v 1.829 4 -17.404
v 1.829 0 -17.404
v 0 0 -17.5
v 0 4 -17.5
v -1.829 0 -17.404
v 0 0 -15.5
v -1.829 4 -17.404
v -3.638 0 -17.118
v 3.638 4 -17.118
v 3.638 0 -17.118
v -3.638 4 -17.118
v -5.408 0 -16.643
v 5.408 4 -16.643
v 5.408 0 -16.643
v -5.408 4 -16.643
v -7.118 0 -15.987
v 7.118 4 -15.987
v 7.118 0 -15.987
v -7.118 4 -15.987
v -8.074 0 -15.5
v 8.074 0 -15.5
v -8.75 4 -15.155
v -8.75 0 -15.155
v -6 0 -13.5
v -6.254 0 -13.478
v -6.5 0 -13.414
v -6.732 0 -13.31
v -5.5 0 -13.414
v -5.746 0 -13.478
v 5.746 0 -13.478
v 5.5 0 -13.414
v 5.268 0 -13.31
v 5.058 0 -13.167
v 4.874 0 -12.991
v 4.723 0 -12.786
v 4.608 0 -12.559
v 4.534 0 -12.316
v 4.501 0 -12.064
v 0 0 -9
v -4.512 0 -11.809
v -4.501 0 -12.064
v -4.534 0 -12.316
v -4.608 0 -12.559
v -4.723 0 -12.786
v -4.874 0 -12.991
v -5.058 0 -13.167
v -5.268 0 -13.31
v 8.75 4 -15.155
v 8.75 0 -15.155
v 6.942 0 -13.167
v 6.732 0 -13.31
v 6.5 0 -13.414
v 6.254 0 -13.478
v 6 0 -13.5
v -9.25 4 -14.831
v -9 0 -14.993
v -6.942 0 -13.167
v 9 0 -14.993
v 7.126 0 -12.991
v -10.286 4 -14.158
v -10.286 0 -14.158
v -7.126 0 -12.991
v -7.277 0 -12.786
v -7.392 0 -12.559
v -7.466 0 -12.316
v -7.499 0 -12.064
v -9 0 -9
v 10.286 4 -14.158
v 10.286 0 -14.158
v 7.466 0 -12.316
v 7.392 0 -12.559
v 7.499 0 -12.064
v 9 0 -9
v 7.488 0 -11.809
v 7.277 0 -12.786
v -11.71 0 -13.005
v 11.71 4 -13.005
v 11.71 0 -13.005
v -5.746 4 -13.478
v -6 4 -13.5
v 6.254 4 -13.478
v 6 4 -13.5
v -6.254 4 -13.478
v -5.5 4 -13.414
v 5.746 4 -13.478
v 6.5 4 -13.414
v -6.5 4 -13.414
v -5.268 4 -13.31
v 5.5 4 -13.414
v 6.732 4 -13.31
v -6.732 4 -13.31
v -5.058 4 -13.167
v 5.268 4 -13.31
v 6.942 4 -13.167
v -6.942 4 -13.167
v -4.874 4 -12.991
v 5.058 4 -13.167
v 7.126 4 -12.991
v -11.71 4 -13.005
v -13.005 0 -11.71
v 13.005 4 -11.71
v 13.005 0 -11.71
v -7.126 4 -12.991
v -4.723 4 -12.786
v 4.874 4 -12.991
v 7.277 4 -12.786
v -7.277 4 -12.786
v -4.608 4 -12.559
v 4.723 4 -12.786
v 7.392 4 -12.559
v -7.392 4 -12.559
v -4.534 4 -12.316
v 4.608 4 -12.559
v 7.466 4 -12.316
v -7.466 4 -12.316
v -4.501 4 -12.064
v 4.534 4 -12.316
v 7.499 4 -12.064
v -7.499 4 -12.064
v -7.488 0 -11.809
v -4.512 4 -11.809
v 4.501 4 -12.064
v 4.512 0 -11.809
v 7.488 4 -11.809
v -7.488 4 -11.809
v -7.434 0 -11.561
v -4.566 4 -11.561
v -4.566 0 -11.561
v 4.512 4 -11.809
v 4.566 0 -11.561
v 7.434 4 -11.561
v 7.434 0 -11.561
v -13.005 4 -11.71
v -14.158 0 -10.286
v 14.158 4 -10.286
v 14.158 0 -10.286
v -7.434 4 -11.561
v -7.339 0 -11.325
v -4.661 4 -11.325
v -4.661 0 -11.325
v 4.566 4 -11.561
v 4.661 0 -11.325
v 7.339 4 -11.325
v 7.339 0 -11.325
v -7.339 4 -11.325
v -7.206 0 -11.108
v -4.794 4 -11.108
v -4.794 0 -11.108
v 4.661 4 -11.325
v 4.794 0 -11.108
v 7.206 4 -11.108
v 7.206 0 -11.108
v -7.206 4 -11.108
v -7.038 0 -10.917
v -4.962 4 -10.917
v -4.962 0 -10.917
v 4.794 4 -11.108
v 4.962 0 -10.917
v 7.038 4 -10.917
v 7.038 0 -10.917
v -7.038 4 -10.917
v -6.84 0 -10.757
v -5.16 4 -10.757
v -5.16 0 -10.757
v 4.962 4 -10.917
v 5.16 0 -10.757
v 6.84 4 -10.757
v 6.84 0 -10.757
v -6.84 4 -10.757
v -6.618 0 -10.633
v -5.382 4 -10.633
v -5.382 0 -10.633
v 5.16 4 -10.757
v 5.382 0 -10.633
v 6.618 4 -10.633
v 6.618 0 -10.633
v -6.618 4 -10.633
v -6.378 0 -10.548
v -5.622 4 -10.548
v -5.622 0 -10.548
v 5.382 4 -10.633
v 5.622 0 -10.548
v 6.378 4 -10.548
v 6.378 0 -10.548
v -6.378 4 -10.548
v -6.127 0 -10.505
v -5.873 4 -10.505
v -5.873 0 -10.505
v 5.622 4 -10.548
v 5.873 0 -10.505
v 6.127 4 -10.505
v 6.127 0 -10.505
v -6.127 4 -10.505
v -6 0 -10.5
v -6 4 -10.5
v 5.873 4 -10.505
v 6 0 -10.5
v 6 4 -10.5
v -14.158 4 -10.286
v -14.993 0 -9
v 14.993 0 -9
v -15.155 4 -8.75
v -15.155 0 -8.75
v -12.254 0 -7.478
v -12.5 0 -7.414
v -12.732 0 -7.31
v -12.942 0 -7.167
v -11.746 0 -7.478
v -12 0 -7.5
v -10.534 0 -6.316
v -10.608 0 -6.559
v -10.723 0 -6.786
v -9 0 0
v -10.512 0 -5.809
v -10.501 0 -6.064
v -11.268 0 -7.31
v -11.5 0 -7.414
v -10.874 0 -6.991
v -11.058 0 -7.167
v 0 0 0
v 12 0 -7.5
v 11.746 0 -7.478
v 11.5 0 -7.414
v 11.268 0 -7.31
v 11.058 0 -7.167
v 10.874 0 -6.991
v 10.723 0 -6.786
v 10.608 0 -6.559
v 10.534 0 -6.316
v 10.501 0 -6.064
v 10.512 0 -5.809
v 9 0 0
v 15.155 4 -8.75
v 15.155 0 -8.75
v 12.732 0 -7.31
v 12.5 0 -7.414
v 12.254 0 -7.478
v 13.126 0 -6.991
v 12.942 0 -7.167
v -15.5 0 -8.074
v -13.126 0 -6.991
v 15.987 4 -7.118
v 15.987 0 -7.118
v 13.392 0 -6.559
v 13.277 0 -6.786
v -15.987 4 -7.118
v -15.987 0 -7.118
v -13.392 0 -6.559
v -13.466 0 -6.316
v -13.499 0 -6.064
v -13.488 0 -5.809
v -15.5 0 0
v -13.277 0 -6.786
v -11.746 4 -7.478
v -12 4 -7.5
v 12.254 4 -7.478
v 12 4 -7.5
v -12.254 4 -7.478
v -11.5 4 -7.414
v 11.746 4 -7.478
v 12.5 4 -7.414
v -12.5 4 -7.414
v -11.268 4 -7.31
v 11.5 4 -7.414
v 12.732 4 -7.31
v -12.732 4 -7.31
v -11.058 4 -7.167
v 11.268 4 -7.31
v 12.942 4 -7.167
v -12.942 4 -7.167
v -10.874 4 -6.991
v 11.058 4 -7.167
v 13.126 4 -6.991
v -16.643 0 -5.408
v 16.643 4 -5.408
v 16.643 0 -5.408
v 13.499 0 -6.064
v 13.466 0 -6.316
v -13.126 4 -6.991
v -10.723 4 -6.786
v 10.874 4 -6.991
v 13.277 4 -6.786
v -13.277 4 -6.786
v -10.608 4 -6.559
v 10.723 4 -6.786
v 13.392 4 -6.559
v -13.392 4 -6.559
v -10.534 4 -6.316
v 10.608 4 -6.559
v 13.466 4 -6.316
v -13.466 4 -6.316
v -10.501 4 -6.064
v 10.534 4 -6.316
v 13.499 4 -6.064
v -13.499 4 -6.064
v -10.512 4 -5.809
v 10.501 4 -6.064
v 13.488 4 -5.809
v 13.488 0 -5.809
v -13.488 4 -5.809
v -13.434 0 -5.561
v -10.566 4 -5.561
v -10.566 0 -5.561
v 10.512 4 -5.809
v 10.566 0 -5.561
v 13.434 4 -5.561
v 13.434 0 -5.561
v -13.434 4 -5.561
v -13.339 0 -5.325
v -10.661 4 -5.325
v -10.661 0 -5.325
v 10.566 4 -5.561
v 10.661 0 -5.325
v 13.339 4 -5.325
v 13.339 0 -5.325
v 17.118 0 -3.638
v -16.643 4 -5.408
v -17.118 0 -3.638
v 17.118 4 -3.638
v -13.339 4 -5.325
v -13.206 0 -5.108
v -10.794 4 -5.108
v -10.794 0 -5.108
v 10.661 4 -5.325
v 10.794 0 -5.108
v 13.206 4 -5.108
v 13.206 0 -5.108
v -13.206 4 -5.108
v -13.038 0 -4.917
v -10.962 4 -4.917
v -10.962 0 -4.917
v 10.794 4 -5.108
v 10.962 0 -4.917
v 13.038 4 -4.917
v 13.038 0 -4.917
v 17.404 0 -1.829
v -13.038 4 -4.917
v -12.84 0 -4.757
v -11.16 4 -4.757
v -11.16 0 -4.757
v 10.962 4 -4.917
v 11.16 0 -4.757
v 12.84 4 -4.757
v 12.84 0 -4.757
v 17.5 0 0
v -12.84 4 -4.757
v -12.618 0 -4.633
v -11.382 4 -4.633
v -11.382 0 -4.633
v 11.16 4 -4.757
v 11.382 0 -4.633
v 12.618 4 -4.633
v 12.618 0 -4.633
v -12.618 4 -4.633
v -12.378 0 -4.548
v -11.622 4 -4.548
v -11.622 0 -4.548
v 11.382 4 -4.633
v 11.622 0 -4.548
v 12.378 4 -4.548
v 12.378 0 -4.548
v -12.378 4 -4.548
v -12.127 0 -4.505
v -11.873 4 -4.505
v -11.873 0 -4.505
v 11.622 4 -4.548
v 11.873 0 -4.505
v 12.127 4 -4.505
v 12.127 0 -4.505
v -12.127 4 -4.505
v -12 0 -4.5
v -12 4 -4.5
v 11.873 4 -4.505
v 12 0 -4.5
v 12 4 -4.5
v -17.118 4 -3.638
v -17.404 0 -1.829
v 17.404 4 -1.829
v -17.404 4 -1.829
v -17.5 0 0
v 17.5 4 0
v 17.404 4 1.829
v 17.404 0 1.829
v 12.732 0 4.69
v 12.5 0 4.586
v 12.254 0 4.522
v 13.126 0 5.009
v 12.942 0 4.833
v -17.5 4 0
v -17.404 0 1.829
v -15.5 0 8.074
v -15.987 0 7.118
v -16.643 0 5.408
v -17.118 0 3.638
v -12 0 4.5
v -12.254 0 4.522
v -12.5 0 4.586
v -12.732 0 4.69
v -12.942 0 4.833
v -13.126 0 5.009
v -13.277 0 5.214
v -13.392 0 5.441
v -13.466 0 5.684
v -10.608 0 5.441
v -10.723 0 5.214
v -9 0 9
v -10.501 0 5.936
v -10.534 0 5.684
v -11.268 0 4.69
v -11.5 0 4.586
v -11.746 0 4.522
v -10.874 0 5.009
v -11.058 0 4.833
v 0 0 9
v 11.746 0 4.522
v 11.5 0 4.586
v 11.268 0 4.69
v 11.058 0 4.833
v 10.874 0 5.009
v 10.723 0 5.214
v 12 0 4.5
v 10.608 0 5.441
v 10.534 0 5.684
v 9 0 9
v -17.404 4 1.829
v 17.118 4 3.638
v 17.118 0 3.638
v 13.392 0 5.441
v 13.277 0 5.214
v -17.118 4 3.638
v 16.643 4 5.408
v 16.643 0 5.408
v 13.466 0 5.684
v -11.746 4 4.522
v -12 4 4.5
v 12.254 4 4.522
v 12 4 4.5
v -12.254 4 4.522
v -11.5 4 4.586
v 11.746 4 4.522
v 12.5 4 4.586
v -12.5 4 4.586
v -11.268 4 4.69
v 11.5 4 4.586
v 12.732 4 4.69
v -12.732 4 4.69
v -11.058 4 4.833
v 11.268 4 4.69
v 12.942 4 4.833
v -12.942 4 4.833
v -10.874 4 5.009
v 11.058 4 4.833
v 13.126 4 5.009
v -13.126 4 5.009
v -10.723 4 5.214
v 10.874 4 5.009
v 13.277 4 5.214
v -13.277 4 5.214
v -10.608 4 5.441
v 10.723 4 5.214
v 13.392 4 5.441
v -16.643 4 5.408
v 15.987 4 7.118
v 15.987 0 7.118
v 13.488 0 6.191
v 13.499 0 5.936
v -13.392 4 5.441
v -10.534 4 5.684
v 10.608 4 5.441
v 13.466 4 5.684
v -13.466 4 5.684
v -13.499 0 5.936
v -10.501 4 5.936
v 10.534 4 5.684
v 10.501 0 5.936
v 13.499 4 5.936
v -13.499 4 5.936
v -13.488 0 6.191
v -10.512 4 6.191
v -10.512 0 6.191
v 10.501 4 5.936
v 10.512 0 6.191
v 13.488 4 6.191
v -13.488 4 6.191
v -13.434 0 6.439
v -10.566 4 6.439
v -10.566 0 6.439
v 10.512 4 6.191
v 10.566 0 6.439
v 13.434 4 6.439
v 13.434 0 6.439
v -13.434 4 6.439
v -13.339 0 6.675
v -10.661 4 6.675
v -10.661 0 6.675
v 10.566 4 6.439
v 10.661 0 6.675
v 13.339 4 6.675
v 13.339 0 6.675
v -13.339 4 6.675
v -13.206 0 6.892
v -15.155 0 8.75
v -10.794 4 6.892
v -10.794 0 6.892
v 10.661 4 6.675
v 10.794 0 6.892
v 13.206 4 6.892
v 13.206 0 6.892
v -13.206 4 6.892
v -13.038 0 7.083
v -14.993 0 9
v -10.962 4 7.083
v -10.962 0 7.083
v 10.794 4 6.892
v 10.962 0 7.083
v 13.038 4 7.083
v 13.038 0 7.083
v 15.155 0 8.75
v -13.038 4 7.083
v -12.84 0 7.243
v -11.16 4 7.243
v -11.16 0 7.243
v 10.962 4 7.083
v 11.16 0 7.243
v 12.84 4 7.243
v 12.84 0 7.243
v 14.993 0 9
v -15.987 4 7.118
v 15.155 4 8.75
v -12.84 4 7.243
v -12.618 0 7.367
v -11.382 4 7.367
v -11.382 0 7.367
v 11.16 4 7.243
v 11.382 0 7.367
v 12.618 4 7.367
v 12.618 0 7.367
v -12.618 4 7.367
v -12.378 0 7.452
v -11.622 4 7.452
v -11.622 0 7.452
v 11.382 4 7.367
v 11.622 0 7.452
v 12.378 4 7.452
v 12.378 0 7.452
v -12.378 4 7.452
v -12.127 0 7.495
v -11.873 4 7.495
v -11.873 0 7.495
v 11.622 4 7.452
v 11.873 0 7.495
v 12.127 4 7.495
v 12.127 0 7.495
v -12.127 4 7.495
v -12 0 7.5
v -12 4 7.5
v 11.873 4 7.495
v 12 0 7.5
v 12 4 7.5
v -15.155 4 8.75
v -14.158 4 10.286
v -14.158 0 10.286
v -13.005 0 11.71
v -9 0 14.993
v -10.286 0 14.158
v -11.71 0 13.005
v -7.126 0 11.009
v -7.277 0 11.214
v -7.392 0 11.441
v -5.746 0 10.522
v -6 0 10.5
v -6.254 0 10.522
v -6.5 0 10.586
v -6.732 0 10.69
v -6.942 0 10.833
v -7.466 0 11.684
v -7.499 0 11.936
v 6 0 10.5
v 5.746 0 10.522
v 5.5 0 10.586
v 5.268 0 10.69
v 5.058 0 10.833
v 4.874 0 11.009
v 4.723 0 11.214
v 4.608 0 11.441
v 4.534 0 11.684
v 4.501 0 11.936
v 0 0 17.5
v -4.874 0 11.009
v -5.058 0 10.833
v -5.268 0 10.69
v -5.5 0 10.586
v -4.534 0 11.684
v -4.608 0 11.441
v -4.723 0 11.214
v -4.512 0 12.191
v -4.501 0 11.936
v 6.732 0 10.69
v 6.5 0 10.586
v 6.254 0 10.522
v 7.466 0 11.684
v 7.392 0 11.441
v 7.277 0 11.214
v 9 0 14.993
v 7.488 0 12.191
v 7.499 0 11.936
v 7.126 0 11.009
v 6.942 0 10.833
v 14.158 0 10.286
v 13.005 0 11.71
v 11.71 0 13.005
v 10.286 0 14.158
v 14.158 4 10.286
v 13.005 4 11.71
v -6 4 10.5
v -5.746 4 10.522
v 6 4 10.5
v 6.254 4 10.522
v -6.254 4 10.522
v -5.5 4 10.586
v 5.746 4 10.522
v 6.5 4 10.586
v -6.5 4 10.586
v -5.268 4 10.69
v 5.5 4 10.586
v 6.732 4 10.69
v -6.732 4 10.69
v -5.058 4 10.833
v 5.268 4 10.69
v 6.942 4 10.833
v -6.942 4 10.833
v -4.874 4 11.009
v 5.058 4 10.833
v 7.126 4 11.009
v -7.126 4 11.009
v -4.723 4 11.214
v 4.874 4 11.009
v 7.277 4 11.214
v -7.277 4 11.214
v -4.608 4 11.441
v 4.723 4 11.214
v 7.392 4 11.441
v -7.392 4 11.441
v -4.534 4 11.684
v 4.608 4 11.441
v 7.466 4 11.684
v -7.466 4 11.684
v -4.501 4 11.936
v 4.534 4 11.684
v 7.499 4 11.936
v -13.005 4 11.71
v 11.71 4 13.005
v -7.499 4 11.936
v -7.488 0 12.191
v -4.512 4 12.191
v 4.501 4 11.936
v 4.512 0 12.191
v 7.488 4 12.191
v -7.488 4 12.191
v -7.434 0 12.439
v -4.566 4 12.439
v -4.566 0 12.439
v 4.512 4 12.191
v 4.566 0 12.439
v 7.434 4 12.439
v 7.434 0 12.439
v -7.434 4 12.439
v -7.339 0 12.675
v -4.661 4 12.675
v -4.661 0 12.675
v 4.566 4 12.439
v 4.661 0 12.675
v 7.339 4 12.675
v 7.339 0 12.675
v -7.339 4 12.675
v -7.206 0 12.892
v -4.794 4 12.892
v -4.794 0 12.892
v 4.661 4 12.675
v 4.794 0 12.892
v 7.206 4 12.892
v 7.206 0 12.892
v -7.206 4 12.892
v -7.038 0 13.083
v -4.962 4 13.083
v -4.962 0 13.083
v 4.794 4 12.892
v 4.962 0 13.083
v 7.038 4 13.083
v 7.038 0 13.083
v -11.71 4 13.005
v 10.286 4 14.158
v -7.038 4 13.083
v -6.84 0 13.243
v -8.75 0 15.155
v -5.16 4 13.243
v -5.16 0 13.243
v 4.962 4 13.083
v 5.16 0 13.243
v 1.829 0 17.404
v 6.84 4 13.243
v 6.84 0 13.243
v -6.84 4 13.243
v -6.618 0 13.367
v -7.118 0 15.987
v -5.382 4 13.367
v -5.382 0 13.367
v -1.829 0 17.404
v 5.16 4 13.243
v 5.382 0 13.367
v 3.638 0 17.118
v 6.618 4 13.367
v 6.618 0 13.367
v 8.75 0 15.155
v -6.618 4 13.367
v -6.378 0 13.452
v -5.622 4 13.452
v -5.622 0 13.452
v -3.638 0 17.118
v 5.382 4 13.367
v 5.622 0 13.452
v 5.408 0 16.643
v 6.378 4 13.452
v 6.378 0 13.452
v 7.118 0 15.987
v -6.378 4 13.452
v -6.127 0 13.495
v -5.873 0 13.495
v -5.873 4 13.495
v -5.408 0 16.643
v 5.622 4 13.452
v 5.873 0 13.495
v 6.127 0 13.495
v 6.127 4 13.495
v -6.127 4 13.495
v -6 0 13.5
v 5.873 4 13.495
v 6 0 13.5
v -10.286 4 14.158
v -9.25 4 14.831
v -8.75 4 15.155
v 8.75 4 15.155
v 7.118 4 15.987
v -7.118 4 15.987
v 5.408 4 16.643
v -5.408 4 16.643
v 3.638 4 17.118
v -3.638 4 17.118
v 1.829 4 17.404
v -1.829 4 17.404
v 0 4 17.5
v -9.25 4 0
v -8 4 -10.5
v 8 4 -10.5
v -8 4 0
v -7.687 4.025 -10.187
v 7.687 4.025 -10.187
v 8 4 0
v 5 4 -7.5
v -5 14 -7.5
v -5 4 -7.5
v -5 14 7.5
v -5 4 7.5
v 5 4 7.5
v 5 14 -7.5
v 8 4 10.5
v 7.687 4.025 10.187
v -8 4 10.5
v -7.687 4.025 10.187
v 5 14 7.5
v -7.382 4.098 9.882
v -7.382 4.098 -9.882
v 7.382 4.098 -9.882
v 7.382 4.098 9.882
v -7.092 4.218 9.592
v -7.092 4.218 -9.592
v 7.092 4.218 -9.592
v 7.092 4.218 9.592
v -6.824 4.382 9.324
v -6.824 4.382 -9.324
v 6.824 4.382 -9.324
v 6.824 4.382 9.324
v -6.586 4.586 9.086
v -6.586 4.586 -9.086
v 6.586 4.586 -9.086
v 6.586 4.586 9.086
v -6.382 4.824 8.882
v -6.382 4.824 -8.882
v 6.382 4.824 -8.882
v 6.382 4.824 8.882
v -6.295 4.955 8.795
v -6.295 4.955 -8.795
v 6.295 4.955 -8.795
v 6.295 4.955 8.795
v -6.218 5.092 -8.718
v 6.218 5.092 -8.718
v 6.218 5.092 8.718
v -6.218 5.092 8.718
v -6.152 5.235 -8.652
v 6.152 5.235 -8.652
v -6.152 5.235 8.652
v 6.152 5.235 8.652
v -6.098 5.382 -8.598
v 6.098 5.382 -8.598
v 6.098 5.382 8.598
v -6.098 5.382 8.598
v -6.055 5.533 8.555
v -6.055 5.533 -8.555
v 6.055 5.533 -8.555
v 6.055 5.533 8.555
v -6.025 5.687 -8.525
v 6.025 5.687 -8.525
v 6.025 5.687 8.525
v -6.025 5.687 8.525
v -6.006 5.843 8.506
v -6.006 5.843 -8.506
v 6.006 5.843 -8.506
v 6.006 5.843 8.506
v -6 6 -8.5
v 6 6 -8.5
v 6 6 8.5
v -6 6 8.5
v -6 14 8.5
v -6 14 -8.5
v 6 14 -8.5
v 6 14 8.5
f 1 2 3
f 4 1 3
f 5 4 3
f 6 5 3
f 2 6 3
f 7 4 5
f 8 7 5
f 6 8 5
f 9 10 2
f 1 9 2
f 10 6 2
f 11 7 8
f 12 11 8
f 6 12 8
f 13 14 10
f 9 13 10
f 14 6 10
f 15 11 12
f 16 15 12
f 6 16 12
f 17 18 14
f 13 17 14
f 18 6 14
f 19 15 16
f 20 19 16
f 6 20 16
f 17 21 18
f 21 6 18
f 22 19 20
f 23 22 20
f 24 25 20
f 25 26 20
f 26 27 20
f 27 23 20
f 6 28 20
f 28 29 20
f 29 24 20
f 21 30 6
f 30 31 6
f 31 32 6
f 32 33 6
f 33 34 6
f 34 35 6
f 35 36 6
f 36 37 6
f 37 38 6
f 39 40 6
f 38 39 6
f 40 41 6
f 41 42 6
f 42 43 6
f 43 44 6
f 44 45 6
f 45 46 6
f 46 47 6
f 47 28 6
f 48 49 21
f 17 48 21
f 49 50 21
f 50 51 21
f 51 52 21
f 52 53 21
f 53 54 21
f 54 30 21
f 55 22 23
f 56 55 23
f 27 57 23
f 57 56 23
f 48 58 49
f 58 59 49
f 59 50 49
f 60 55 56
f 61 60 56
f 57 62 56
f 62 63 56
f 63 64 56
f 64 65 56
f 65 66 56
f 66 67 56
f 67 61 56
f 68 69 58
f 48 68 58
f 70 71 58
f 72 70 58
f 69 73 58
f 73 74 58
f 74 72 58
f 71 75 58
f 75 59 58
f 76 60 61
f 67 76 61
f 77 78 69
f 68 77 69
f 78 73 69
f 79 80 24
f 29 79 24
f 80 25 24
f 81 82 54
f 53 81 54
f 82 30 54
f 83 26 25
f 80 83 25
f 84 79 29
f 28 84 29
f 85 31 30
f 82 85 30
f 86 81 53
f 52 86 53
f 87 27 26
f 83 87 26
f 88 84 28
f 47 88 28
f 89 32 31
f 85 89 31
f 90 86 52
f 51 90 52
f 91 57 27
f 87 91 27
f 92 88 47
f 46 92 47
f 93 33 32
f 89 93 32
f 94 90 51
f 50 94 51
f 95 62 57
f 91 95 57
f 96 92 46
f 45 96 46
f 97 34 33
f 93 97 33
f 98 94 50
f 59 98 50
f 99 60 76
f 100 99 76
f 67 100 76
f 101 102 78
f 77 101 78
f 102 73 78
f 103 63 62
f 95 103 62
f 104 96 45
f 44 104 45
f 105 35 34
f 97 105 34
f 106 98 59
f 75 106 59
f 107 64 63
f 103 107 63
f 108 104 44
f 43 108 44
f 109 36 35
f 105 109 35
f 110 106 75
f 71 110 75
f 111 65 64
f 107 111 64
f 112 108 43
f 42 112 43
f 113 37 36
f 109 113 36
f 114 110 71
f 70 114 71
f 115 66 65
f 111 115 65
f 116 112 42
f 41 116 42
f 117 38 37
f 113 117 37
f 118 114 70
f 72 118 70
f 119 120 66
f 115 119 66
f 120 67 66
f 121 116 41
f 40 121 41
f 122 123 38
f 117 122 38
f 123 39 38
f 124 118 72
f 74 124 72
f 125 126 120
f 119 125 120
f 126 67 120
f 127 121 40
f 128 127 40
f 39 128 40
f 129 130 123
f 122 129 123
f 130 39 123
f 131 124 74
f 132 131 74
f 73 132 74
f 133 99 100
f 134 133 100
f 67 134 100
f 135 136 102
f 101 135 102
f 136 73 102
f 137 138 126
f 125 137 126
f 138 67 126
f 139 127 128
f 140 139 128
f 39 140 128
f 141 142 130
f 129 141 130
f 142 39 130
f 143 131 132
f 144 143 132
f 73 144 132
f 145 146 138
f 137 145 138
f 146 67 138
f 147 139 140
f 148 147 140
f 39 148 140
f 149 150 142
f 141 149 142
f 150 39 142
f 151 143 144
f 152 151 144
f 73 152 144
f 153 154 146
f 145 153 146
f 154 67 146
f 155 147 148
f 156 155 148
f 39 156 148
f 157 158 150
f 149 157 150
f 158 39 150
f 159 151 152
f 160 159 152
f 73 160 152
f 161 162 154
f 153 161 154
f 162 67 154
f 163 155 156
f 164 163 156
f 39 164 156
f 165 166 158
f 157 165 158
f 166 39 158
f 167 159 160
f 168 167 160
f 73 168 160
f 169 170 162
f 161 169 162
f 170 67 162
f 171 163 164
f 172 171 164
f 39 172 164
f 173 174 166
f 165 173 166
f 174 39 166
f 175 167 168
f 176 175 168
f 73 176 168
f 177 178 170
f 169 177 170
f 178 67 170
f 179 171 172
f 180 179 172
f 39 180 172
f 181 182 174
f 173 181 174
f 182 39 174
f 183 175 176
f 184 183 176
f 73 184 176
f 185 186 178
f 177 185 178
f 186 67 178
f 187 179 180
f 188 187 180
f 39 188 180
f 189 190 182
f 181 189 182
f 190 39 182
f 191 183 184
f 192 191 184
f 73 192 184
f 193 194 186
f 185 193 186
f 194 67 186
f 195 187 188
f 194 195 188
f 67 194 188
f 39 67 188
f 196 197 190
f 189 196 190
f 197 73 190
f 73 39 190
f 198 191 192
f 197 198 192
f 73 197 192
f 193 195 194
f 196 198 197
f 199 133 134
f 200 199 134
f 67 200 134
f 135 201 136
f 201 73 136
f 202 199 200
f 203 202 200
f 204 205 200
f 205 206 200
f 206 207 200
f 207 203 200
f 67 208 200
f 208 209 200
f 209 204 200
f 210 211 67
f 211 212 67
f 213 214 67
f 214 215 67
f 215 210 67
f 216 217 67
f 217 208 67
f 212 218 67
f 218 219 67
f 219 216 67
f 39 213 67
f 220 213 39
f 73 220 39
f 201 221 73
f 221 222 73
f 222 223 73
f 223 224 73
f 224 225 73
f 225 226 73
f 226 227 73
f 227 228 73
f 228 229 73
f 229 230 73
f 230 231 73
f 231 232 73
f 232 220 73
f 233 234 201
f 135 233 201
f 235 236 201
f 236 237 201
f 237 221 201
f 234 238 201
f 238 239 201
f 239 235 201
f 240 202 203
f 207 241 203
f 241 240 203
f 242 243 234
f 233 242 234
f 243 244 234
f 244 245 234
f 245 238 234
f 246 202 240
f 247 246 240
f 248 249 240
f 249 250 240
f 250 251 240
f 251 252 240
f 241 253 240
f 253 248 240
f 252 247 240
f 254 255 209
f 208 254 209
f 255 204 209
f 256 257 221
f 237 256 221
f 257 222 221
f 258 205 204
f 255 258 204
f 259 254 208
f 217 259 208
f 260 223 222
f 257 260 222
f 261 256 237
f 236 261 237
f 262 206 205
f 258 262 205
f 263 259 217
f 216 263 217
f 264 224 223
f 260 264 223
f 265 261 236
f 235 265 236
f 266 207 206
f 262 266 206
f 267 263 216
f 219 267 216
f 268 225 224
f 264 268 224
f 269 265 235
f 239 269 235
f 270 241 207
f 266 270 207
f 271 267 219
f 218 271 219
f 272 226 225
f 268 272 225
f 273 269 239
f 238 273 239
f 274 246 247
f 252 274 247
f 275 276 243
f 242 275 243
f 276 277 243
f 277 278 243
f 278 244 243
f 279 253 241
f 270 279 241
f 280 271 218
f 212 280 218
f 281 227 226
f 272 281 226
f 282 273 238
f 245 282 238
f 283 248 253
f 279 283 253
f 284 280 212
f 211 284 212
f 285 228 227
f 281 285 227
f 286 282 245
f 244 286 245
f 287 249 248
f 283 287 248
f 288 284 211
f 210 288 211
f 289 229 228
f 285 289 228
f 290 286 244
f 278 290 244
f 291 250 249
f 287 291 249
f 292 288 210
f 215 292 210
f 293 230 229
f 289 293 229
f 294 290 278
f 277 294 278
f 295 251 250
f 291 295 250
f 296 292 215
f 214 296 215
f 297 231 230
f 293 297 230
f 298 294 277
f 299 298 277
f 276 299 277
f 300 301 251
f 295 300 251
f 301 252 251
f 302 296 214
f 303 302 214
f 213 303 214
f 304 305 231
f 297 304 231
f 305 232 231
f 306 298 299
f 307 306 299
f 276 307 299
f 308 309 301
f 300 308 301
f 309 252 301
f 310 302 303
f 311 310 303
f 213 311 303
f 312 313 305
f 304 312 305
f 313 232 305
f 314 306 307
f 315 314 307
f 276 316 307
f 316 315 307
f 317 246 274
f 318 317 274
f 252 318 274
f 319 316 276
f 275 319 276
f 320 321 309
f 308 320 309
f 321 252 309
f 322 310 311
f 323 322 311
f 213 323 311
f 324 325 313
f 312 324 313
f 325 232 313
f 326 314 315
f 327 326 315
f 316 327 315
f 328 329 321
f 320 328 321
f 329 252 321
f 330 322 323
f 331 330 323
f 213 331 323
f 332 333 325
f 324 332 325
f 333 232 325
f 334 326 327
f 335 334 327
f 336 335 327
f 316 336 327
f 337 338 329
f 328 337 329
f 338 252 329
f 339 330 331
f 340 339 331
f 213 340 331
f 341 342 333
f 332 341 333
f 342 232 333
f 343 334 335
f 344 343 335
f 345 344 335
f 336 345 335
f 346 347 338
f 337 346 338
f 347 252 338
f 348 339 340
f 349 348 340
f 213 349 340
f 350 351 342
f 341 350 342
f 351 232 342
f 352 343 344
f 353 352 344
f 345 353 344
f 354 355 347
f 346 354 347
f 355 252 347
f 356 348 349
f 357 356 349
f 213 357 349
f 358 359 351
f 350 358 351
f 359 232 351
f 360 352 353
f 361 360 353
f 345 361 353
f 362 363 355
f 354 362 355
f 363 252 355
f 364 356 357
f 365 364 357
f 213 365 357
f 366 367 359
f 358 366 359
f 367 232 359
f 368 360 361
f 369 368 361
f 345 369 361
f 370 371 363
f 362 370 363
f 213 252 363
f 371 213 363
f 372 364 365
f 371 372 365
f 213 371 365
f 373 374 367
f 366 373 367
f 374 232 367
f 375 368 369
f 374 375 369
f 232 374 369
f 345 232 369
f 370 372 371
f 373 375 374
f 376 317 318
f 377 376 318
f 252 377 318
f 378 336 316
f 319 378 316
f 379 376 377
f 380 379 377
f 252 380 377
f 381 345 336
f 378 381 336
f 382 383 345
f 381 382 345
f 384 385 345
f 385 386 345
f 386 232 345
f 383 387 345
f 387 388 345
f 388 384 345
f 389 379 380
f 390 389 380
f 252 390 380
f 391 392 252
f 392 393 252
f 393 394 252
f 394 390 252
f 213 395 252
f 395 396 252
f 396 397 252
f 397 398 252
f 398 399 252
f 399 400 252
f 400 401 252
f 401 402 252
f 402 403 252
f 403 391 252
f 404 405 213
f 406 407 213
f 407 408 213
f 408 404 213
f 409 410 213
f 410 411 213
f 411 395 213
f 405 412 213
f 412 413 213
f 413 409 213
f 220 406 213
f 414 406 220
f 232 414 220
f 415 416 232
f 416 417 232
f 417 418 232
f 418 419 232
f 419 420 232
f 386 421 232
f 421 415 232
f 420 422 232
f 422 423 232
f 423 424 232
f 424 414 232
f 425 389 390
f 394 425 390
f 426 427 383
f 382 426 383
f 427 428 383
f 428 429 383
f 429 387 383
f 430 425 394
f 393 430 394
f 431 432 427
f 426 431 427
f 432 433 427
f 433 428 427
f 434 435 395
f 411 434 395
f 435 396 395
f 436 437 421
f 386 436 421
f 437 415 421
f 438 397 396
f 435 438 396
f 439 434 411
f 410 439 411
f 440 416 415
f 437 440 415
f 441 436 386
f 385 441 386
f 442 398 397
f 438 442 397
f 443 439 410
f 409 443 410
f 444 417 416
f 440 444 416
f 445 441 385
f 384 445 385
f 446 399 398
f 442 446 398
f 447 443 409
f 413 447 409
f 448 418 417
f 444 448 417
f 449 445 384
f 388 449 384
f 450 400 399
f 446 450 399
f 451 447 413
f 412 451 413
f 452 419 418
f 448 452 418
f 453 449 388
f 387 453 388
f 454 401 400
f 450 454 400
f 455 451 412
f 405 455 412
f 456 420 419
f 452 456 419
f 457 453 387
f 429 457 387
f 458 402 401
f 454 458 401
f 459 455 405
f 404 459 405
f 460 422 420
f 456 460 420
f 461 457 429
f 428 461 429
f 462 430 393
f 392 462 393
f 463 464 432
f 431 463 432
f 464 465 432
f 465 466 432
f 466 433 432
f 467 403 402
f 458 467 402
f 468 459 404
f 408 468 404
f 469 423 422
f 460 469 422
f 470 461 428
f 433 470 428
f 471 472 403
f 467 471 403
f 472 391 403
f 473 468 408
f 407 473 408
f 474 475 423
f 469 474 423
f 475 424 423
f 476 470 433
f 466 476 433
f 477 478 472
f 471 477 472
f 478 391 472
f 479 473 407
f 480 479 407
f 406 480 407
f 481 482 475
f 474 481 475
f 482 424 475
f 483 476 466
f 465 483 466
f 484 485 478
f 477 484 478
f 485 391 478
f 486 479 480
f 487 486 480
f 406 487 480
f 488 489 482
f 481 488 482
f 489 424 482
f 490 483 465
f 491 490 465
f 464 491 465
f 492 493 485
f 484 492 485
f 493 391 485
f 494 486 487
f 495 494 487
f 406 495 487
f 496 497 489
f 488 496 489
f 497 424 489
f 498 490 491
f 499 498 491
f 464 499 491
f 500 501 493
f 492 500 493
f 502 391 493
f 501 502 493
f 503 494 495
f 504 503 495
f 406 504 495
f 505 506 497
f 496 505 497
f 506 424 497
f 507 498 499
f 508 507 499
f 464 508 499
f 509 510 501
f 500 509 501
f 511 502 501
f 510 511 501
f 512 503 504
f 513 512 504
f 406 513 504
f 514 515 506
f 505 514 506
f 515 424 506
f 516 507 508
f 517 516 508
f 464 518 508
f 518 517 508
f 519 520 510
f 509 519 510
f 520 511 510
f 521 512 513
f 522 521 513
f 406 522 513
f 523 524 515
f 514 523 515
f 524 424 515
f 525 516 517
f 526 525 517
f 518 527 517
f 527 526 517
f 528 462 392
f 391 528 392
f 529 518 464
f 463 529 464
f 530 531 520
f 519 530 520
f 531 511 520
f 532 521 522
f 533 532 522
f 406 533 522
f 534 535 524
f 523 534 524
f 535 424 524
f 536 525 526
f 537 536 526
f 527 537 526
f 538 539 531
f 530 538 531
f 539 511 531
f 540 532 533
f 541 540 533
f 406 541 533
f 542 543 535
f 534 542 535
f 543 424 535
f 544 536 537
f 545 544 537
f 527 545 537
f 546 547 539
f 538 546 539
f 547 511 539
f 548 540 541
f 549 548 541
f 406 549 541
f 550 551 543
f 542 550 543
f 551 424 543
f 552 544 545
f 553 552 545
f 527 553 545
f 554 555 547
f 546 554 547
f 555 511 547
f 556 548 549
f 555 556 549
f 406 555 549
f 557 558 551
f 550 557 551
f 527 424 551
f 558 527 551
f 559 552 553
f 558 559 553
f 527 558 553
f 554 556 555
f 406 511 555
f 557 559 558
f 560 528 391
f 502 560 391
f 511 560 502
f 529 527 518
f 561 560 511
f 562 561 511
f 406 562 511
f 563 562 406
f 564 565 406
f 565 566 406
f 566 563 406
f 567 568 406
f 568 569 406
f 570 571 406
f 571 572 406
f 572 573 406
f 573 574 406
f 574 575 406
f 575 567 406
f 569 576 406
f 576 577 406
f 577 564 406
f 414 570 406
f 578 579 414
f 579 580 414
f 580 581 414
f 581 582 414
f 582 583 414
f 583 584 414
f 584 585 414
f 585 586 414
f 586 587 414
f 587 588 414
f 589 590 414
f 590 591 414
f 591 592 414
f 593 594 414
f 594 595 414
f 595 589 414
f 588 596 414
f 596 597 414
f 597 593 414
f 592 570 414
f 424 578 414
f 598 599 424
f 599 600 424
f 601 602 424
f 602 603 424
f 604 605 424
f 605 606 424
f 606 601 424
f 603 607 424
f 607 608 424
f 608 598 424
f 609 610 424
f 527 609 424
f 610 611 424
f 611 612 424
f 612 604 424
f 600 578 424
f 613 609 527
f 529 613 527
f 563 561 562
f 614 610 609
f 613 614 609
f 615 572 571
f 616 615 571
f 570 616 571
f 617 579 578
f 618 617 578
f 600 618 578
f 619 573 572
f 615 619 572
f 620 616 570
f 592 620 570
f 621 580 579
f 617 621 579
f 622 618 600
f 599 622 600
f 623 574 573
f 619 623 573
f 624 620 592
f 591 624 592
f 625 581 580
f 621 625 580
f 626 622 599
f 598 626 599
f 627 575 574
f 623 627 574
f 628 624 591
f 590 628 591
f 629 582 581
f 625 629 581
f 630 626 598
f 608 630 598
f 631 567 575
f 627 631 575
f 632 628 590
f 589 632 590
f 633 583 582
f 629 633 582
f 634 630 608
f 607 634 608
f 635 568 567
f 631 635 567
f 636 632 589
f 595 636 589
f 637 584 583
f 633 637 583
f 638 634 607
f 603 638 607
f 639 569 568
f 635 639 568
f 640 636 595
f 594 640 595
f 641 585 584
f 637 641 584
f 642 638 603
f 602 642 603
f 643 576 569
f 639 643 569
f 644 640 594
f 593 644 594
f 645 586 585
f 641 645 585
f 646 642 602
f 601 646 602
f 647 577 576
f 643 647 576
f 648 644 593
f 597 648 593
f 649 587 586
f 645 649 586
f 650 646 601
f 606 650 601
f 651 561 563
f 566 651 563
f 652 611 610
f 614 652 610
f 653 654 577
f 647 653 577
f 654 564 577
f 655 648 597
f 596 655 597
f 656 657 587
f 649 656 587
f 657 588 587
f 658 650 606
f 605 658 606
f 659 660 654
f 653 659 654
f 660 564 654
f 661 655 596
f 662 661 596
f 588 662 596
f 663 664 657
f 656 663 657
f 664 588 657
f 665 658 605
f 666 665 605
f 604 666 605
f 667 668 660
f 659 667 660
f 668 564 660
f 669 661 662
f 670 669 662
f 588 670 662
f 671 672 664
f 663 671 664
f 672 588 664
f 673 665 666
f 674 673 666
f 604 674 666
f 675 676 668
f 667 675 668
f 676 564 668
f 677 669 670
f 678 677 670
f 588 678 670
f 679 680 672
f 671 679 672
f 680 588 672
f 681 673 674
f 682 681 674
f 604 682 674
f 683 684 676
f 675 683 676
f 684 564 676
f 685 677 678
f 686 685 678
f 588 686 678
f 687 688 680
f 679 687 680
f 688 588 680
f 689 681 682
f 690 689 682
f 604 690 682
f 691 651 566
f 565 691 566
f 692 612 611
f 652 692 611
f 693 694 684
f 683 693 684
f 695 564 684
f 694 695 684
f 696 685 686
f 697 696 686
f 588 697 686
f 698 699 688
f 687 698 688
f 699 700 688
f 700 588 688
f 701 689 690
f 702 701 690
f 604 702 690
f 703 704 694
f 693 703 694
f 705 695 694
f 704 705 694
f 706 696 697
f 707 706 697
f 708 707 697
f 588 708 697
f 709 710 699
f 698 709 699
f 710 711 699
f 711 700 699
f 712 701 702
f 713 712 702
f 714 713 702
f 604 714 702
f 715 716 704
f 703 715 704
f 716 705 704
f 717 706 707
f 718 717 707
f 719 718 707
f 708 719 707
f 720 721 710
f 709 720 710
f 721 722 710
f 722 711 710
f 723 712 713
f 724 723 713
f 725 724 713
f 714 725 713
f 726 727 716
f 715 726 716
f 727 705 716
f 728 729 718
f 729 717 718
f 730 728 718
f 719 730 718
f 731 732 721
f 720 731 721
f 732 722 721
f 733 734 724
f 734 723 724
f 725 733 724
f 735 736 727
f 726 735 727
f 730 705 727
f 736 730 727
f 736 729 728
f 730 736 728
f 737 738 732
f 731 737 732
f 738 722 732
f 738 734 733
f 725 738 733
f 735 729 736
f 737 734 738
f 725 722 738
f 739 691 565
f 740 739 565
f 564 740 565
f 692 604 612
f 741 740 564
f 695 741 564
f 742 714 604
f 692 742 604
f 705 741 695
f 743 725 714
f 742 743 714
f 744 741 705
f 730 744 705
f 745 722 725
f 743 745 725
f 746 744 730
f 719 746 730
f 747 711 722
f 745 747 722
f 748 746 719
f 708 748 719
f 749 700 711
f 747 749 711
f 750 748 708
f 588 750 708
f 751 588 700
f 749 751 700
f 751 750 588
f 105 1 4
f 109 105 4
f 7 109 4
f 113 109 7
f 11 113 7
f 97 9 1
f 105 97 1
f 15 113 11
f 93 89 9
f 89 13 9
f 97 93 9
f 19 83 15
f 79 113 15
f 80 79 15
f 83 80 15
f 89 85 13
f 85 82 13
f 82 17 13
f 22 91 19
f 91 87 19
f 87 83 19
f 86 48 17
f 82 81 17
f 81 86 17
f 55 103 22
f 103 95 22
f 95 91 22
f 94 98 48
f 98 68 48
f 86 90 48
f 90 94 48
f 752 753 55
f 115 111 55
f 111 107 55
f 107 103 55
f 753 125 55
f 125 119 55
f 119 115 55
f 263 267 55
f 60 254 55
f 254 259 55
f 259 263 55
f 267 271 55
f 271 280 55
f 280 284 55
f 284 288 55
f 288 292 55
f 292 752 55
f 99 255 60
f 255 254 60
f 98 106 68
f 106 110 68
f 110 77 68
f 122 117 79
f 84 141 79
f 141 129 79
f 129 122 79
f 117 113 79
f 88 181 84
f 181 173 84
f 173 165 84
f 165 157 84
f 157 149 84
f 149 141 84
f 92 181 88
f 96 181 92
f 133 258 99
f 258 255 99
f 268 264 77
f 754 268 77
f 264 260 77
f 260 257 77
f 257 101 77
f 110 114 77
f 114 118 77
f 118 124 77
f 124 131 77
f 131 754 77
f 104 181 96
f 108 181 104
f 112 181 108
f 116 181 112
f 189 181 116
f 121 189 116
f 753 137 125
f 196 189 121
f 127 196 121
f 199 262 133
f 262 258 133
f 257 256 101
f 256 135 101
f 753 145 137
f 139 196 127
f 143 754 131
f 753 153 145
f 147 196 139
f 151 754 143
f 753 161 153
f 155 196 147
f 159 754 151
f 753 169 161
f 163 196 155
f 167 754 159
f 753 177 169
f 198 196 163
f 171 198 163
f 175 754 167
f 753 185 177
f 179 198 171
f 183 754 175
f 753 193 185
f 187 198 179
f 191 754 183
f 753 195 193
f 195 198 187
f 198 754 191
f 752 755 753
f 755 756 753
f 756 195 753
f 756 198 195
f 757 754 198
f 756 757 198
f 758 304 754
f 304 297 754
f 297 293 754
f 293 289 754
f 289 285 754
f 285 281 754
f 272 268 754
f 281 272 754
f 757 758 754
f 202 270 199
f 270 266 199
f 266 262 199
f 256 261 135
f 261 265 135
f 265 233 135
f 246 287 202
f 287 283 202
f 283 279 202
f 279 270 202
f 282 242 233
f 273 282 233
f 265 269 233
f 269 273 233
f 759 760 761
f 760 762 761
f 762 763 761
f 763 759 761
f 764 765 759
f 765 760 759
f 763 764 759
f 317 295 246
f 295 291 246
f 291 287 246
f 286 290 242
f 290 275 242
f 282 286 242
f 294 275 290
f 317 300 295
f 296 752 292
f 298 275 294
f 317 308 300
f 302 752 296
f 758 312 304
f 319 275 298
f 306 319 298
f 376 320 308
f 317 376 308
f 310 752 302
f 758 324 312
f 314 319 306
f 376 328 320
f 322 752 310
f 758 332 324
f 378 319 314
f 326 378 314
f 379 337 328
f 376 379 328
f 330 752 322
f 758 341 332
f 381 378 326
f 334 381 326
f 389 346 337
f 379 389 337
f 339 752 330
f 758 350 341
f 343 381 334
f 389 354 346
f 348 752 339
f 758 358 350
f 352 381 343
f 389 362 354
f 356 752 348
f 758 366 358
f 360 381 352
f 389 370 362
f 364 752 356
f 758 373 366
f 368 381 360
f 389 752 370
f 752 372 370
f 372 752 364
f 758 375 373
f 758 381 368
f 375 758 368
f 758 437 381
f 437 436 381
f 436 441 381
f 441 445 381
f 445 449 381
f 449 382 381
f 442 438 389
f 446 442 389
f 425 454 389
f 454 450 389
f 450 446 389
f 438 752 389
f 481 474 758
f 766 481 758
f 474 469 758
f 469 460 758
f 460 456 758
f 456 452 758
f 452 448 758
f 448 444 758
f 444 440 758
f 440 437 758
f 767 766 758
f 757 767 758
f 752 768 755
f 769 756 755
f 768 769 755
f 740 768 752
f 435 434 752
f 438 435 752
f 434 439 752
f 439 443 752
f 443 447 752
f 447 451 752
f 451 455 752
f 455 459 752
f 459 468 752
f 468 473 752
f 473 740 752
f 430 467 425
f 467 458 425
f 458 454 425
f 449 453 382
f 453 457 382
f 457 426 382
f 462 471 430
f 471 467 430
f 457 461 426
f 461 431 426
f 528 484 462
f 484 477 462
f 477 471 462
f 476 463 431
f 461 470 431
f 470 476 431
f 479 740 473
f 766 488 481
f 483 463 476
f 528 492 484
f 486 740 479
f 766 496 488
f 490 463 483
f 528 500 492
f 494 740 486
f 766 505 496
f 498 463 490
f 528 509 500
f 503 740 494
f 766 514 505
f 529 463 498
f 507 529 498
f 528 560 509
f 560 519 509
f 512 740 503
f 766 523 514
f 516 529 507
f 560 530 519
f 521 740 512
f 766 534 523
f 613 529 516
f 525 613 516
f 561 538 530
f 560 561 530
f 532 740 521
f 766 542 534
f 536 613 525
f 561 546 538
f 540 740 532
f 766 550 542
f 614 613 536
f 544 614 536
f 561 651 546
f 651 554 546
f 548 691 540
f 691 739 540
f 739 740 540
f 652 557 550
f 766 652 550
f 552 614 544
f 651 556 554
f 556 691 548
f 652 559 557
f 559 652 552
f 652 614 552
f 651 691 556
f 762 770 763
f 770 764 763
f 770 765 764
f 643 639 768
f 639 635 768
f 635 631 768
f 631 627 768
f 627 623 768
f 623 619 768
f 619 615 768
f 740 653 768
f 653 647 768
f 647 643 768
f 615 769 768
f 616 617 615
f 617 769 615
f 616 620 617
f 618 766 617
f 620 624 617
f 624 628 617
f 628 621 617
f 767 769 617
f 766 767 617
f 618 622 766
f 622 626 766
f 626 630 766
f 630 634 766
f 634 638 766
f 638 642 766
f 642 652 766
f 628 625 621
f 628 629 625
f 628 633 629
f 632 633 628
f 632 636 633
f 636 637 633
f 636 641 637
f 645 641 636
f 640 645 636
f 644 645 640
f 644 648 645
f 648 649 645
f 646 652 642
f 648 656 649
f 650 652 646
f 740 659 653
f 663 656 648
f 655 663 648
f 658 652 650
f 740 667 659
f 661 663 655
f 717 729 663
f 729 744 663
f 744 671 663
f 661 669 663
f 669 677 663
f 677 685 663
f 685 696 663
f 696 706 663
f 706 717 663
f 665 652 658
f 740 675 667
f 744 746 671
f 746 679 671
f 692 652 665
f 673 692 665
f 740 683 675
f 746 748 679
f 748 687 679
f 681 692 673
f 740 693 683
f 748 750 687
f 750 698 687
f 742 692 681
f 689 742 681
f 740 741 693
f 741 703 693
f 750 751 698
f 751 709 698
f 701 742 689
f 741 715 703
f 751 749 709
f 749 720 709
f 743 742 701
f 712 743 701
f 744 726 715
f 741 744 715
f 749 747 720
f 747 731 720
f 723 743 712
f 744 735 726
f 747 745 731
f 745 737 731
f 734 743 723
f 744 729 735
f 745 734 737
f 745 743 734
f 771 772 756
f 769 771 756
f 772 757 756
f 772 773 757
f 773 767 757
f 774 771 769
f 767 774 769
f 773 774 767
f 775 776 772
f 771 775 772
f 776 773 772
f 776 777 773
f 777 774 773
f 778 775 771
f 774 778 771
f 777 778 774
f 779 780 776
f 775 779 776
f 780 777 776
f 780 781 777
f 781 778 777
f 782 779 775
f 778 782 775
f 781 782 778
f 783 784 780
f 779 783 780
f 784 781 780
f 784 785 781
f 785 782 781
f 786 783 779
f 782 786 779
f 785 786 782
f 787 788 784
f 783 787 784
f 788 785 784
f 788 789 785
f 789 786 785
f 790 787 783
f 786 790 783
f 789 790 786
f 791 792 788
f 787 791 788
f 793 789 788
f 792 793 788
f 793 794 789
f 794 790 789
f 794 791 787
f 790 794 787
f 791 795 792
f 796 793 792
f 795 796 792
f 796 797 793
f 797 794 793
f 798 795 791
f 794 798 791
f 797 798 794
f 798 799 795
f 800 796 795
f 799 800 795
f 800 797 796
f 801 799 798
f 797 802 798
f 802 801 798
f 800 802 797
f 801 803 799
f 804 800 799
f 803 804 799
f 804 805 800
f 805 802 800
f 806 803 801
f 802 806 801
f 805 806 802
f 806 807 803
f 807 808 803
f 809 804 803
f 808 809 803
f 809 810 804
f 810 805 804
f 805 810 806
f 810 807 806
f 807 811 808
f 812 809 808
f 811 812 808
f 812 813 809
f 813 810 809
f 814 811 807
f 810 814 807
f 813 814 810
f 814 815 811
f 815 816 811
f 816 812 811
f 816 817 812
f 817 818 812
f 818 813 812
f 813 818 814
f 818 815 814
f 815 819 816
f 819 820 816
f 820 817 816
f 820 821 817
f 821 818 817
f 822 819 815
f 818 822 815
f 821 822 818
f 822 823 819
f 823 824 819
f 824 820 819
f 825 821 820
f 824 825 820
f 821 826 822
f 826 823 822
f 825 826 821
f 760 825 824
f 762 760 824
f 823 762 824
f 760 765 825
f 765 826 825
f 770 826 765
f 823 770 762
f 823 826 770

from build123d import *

# Parameters (mm, degrees)
SKETCH1_R           = 17.5
SKETCH1_R_2         = 1.5
BOSS_EXTRUDE1_DEPTH = 4
SKETCH3_W           = 12
SKETCH3_H           = 17
SKETCH3_W_2         = 10
SKETCH3_H_2         = 15
BOSS_EXTRUDE2_DEPTH = 10
FILLET1_R           = 2


with BuildPart() as part:
    # Sketch1 → Boss-Extrude1 (new body)
    with BuildSketch(Plane(origin=(0, 0, 0), x_dir=(1, 0, 0), z_dir=(0, 1, 0))):
        with Locations(Location((0, 0, 0), (0, 0, 270))):
            Circle(SKETCH1_R)
        with Locations(Location((12, 6, 0), (0, 0, 270))):
            Circle(SKETCH1_R_2, mode=Mode.SUBTRACT)
        with Locations(Location((12, -6, 0), (0, 0, 270))):
            Circle(SKETCH1_R_2, mode=Mode.SUBTRACT)
        with Locations(Location((-12, 6, 0), (0, 0, 270))):
            Circle(SKETCH1_R_2, mode=Mode.SUBTRACT)
        with Locations(Location((-12, -6, 0), (0, 0, 270))):
            Circle(SKETCH1_R_2, mode=Mode.SUBTRACT)
        with Locations(Location((6, 12, 0), (0, 0, 270))):
            Circle(SKETCH1_R_2, mode=Mode.SUBTRACT)
        with Locations(Location((6, -12, 0), (0, 0, 270))):
            Circle(SKETCH1_R_2, mode=Mode.SUBTRACT)
        with Locations(Location((-6, -12, 0), (0, 0, 270))):
            Circle(SKETCH1_R_2, mode=Mode.SUBTRACT)
        with Locations(Location((-6, 12, 0), (0, 0, 270))):
            Circle(SKETCH1_R_2, mode=Mode.SUBTRACT)
    extrude(amount=BOSS_EXTRUDE1_DEPTH)

    # Sketch3 → Boss-Extrude2 (add)
    with BuildSketch(Plane(origin=(0, 4, 0), x_dir=(1, 0, 0), z_dir=(0, 1, 0))):
        Rectangle(SKETCH3_W, SKETCH3_H)
        Rectangle(SKETCH3_W_2, SKETCH3_H_2, mode=Mode.SUBTRACT)
    extrude(amount=BOSS_EXTRUDE2_DEPTH)

    # Fillet1
    fillet1_edges = [part.edges().sort_by_distance(p)[0] for p in [
        (-6, 4, 0),
        (0, 4, 8.5),
        (6, 4, 0),
        (0, 4, -8.5),
    ]]
    fillet(fillet1_edges, radius=FILLET1_R - 0.0001)  # a hair under: the kernel refuses the full size


solid = part.part
